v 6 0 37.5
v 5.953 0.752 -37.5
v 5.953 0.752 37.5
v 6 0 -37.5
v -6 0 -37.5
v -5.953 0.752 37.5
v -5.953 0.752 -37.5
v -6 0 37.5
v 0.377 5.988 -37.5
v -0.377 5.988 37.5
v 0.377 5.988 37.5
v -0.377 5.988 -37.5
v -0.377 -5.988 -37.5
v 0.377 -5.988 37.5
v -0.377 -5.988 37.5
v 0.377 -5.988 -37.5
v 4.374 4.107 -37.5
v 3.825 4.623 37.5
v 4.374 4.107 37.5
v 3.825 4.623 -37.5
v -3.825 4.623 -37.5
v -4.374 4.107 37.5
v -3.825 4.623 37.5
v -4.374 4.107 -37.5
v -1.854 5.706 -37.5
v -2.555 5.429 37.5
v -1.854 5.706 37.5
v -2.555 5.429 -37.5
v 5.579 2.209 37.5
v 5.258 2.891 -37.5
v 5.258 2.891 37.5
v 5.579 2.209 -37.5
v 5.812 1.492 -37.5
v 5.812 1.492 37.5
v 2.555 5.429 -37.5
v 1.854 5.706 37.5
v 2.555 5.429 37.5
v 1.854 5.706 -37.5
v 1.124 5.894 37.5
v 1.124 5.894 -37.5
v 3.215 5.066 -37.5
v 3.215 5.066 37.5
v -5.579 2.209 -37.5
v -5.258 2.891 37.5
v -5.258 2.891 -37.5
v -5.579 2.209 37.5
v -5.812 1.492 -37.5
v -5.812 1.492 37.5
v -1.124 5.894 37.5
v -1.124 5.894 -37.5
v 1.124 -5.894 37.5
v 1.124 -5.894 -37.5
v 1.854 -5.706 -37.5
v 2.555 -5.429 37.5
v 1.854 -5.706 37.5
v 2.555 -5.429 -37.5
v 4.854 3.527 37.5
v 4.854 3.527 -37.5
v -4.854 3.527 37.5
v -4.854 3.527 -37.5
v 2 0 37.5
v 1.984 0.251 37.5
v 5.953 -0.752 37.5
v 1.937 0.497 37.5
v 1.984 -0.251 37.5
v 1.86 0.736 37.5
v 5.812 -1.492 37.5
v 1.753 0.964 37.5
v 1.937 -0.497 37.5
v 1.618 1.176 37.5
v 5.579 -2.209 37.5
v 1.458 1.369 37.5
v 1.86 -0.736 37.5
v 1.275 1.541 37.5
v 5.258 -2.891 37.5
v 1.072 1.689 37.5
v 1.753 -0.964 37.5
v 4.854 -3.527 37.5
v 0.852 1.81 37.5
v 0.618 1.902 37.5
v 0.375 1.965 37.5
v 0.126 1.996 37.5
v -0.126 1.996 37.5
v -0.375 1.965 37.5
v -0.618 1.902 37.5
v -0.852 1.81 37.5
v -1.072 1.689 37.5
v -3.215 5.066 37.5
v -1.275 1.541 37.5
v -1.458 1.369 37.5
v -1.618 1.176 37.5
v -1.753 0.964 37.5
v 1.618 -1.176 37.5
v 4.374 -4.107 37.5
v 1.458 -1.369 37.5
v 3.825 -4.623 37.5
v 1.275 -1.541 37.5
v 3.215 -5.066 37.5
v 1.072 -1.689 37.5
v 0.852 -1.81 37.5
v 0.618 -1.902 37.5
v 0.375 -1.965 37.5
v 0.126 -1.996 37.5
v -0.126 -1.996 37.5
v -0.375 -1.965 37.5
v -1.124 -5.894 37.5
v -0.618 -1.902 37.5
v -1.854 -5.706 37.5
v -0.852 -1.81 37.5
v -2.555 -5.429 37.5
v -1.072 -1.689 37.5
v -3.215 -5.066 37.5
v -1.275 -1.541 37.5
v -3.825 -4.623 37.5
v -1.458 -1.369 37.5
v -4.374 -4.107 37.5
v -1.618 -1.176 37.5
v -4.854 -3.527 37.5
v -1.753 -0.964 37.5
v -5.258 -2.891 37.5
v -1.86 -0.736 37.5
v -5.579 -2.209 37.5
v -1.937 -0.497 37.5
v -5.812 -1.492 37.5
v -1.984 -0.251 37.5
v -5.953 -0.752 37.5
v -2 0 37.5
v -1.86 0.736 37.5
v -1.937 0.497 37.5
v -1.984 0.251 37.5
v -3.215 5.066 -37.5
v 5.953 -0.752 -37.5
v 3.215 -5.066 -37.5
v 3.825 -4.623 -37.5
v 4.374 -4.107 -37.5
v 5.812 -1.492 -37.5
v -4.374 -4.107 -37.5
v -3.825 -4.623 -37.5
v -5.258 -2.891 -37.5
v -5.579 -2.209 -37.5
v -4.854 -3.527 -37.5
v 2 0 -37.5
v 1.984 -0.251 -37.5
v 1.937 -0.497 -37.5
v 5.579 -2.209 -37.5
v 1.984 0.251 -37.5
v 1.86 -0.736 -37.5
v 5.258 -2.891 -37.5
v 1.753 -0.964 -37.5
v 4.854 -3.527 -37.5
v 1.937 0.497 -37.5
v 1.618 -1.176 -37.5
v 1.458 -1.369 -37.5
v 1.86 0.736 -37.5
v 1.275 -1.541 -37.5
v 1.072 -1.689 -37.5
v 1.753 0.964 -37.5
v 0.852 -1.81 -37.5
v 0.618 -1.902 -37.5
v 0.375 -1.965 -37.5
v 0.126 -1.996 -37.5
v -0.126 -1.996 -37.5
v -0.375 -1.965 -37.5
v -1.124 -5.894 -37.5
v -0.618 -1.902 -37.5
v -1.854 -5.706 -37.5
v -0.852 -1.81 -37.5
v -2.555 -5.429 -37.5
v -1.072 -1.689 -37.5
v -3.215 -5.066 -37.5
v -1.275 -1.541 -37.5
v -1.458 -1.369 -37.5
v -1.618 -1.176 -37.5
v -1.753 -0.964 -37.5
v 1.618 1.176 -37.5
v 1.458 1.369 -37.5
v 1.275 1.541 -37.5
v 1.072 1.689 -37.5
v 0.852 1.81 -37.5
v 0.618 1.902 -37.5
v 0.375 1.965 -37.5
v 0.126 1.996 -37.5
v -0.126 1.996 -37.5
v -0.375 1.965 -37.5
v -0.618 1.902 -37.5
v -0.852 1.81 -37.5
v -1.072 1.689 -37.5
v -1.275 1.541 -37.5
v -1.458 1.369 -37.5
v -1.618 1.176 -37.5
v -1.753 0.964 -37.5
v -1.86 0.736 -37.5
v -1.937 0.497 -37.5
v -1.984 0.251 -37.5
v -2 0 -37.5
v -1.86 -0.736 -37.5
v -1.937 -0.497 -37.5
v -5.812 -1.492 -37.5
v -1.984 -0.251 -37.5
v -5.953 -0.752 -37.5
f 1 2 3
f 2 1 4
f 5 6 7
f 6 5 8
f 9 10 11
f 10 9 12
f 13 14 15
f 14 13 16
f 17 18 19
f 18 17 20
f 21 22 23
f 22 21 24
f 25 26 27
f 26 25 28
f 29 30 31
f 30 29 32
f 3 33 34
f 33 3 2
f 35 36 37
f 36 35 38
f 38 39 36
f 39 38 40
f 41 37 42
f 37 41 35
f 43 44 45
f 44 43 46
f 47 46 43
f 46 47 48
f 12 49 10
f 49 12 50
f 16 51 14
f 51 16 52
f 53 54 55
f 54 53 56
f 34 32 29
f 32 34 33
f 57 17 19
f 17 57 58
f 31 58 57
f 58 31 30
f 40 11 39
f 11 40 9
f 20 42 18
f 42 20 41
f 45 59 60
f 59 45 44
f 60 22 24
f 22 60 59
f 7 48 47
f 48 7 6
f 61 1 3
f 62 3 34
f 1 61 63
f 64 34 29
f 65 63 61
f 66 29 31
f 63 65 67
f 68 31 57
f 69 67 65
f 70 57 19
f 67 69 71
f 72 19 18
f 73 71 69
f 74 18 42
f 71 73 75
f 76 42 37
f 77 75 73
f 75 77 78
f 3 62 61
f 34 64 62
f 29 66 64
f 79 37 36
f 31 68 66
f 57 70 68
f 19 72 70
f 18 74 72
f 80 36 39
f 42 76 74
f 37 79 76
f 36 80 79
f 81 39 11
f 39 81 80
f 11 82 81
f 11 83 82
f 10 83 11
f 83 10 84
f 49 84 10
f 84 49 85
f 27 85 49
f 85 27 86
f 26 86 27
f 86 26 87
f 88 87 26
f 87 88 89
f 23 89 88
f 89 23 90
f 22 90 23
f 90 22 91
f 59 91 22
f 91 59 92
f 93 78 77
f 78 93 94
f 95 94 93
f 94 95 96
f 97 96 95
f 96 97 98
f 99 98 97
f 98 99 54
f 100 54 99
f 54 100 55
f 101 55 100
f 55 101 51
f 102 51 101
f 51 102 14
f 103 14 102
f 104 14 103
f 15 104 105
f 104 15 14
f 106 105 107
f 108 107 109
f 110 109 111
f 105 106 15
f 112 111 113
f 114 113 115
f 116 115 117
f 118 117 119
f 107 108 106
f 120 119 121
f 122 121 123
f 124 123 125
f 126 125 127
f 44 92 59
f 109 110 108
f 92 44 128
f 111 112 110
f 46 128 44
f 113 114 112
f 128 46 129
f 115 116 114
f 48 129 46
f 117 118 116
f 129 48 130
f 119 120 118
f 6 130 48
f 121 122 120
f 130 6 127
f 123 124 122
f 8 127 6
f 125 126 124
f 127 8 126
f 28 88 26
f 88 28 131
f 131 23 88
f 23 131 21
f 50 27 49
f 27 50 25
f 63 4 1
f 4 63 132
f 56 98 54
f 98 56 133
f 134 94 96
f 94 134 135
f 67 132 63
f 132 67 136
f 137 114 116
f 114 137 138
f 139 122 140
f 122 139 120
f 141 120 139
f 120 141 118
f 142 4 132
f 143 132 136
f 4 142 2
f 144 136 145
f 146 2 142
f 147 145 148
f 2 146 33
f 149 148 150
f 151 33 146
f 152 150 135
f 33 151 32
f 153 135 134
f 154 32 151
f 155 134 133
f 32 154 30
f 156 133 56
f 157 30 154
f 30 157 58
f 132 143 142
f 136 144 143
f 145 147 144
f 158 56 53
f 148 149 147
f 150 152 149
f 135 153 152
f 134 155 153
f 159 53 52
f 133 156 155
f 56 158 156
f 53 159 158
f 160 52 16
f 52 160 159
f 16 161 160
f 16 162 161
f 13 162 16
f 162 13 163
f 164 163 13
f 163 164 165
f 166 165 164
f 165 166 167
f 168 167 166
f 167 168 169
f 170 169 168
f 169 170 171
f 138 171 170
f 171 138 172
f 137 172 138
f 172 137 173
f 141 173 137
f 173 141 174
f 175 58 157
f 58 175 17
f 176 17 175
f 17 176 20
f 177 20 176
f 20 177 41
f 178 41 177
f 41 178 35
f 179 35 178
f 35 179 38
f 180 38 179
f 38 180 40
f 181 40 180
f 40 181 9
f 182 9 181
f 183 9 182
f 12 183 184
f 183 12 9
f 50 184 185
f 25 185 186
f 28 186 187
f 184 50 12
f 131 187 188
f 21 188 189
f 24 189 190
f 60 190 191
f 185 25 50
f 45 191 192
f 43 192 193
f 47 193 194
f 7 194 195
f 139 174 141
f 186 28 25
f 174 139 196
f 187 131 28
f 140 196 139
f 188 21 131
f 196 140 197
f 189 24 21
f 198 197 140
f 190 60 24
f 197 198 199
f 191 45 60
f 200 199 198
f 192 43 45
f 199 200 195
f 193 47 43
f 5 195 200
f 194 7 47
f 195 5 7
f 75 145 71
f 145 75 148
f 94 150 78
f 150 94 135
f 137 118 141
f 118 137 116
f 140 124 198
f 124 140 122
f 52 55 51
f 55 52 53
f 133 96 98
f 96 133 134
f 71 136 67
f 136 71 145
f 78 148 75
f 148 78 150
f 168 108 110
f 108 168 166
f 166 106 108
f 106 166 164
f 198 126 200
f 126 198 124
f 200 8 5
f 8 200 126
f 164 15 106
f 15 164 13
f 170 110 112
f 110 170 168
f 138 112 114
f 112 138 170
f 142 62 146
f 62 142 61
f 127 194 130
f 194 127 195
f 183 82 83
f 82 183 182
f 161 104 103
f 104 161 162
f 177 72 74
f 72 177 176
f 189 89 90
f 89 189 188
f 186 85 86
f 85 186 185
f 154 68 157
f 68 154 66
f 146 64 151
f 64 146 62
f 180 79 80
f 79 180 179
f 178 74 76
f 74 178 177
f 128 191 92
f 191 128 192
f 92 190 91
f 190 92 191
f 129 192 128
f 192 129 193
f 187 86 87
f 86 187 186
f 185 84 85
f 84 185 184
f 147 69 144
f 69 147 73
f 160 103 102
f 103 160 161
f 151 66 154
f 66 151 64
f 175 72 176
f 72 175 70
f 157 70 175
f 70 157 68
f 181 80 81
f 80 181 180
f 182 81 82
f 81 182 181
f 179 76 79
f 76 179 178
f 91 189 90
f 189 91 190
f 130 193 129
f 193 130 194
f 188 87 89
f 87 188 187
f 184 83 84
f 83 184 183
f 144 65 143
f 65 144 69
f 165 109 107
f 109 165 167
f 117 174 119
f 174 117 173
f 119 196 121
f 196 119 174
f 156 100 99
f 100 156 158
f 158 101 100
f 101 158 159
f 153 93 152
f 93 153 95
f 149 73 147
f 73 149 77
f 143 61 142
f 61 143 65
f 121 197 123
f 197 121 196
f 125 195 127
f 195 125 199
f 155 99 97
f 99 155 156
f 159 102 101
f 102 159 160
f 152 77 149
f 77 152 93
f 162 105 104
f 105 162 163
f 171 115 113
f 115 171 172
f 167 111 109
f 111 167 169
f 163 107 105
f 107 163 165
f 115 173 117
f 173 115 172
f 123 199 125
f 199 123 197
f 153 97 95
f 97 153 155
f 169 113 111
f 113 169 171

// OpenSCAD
$fn = 50;


difference() {
	union() {
		translate(v = [0, 0, -37.5000000000]) {
			cylinder(h = 75, r = 6.0000000000);
		}
	}
	union() {
		translate(v = [0, 0, -100.0000000000]) {
			cylinder(h = 200, r = 2);
		}
	}
}
